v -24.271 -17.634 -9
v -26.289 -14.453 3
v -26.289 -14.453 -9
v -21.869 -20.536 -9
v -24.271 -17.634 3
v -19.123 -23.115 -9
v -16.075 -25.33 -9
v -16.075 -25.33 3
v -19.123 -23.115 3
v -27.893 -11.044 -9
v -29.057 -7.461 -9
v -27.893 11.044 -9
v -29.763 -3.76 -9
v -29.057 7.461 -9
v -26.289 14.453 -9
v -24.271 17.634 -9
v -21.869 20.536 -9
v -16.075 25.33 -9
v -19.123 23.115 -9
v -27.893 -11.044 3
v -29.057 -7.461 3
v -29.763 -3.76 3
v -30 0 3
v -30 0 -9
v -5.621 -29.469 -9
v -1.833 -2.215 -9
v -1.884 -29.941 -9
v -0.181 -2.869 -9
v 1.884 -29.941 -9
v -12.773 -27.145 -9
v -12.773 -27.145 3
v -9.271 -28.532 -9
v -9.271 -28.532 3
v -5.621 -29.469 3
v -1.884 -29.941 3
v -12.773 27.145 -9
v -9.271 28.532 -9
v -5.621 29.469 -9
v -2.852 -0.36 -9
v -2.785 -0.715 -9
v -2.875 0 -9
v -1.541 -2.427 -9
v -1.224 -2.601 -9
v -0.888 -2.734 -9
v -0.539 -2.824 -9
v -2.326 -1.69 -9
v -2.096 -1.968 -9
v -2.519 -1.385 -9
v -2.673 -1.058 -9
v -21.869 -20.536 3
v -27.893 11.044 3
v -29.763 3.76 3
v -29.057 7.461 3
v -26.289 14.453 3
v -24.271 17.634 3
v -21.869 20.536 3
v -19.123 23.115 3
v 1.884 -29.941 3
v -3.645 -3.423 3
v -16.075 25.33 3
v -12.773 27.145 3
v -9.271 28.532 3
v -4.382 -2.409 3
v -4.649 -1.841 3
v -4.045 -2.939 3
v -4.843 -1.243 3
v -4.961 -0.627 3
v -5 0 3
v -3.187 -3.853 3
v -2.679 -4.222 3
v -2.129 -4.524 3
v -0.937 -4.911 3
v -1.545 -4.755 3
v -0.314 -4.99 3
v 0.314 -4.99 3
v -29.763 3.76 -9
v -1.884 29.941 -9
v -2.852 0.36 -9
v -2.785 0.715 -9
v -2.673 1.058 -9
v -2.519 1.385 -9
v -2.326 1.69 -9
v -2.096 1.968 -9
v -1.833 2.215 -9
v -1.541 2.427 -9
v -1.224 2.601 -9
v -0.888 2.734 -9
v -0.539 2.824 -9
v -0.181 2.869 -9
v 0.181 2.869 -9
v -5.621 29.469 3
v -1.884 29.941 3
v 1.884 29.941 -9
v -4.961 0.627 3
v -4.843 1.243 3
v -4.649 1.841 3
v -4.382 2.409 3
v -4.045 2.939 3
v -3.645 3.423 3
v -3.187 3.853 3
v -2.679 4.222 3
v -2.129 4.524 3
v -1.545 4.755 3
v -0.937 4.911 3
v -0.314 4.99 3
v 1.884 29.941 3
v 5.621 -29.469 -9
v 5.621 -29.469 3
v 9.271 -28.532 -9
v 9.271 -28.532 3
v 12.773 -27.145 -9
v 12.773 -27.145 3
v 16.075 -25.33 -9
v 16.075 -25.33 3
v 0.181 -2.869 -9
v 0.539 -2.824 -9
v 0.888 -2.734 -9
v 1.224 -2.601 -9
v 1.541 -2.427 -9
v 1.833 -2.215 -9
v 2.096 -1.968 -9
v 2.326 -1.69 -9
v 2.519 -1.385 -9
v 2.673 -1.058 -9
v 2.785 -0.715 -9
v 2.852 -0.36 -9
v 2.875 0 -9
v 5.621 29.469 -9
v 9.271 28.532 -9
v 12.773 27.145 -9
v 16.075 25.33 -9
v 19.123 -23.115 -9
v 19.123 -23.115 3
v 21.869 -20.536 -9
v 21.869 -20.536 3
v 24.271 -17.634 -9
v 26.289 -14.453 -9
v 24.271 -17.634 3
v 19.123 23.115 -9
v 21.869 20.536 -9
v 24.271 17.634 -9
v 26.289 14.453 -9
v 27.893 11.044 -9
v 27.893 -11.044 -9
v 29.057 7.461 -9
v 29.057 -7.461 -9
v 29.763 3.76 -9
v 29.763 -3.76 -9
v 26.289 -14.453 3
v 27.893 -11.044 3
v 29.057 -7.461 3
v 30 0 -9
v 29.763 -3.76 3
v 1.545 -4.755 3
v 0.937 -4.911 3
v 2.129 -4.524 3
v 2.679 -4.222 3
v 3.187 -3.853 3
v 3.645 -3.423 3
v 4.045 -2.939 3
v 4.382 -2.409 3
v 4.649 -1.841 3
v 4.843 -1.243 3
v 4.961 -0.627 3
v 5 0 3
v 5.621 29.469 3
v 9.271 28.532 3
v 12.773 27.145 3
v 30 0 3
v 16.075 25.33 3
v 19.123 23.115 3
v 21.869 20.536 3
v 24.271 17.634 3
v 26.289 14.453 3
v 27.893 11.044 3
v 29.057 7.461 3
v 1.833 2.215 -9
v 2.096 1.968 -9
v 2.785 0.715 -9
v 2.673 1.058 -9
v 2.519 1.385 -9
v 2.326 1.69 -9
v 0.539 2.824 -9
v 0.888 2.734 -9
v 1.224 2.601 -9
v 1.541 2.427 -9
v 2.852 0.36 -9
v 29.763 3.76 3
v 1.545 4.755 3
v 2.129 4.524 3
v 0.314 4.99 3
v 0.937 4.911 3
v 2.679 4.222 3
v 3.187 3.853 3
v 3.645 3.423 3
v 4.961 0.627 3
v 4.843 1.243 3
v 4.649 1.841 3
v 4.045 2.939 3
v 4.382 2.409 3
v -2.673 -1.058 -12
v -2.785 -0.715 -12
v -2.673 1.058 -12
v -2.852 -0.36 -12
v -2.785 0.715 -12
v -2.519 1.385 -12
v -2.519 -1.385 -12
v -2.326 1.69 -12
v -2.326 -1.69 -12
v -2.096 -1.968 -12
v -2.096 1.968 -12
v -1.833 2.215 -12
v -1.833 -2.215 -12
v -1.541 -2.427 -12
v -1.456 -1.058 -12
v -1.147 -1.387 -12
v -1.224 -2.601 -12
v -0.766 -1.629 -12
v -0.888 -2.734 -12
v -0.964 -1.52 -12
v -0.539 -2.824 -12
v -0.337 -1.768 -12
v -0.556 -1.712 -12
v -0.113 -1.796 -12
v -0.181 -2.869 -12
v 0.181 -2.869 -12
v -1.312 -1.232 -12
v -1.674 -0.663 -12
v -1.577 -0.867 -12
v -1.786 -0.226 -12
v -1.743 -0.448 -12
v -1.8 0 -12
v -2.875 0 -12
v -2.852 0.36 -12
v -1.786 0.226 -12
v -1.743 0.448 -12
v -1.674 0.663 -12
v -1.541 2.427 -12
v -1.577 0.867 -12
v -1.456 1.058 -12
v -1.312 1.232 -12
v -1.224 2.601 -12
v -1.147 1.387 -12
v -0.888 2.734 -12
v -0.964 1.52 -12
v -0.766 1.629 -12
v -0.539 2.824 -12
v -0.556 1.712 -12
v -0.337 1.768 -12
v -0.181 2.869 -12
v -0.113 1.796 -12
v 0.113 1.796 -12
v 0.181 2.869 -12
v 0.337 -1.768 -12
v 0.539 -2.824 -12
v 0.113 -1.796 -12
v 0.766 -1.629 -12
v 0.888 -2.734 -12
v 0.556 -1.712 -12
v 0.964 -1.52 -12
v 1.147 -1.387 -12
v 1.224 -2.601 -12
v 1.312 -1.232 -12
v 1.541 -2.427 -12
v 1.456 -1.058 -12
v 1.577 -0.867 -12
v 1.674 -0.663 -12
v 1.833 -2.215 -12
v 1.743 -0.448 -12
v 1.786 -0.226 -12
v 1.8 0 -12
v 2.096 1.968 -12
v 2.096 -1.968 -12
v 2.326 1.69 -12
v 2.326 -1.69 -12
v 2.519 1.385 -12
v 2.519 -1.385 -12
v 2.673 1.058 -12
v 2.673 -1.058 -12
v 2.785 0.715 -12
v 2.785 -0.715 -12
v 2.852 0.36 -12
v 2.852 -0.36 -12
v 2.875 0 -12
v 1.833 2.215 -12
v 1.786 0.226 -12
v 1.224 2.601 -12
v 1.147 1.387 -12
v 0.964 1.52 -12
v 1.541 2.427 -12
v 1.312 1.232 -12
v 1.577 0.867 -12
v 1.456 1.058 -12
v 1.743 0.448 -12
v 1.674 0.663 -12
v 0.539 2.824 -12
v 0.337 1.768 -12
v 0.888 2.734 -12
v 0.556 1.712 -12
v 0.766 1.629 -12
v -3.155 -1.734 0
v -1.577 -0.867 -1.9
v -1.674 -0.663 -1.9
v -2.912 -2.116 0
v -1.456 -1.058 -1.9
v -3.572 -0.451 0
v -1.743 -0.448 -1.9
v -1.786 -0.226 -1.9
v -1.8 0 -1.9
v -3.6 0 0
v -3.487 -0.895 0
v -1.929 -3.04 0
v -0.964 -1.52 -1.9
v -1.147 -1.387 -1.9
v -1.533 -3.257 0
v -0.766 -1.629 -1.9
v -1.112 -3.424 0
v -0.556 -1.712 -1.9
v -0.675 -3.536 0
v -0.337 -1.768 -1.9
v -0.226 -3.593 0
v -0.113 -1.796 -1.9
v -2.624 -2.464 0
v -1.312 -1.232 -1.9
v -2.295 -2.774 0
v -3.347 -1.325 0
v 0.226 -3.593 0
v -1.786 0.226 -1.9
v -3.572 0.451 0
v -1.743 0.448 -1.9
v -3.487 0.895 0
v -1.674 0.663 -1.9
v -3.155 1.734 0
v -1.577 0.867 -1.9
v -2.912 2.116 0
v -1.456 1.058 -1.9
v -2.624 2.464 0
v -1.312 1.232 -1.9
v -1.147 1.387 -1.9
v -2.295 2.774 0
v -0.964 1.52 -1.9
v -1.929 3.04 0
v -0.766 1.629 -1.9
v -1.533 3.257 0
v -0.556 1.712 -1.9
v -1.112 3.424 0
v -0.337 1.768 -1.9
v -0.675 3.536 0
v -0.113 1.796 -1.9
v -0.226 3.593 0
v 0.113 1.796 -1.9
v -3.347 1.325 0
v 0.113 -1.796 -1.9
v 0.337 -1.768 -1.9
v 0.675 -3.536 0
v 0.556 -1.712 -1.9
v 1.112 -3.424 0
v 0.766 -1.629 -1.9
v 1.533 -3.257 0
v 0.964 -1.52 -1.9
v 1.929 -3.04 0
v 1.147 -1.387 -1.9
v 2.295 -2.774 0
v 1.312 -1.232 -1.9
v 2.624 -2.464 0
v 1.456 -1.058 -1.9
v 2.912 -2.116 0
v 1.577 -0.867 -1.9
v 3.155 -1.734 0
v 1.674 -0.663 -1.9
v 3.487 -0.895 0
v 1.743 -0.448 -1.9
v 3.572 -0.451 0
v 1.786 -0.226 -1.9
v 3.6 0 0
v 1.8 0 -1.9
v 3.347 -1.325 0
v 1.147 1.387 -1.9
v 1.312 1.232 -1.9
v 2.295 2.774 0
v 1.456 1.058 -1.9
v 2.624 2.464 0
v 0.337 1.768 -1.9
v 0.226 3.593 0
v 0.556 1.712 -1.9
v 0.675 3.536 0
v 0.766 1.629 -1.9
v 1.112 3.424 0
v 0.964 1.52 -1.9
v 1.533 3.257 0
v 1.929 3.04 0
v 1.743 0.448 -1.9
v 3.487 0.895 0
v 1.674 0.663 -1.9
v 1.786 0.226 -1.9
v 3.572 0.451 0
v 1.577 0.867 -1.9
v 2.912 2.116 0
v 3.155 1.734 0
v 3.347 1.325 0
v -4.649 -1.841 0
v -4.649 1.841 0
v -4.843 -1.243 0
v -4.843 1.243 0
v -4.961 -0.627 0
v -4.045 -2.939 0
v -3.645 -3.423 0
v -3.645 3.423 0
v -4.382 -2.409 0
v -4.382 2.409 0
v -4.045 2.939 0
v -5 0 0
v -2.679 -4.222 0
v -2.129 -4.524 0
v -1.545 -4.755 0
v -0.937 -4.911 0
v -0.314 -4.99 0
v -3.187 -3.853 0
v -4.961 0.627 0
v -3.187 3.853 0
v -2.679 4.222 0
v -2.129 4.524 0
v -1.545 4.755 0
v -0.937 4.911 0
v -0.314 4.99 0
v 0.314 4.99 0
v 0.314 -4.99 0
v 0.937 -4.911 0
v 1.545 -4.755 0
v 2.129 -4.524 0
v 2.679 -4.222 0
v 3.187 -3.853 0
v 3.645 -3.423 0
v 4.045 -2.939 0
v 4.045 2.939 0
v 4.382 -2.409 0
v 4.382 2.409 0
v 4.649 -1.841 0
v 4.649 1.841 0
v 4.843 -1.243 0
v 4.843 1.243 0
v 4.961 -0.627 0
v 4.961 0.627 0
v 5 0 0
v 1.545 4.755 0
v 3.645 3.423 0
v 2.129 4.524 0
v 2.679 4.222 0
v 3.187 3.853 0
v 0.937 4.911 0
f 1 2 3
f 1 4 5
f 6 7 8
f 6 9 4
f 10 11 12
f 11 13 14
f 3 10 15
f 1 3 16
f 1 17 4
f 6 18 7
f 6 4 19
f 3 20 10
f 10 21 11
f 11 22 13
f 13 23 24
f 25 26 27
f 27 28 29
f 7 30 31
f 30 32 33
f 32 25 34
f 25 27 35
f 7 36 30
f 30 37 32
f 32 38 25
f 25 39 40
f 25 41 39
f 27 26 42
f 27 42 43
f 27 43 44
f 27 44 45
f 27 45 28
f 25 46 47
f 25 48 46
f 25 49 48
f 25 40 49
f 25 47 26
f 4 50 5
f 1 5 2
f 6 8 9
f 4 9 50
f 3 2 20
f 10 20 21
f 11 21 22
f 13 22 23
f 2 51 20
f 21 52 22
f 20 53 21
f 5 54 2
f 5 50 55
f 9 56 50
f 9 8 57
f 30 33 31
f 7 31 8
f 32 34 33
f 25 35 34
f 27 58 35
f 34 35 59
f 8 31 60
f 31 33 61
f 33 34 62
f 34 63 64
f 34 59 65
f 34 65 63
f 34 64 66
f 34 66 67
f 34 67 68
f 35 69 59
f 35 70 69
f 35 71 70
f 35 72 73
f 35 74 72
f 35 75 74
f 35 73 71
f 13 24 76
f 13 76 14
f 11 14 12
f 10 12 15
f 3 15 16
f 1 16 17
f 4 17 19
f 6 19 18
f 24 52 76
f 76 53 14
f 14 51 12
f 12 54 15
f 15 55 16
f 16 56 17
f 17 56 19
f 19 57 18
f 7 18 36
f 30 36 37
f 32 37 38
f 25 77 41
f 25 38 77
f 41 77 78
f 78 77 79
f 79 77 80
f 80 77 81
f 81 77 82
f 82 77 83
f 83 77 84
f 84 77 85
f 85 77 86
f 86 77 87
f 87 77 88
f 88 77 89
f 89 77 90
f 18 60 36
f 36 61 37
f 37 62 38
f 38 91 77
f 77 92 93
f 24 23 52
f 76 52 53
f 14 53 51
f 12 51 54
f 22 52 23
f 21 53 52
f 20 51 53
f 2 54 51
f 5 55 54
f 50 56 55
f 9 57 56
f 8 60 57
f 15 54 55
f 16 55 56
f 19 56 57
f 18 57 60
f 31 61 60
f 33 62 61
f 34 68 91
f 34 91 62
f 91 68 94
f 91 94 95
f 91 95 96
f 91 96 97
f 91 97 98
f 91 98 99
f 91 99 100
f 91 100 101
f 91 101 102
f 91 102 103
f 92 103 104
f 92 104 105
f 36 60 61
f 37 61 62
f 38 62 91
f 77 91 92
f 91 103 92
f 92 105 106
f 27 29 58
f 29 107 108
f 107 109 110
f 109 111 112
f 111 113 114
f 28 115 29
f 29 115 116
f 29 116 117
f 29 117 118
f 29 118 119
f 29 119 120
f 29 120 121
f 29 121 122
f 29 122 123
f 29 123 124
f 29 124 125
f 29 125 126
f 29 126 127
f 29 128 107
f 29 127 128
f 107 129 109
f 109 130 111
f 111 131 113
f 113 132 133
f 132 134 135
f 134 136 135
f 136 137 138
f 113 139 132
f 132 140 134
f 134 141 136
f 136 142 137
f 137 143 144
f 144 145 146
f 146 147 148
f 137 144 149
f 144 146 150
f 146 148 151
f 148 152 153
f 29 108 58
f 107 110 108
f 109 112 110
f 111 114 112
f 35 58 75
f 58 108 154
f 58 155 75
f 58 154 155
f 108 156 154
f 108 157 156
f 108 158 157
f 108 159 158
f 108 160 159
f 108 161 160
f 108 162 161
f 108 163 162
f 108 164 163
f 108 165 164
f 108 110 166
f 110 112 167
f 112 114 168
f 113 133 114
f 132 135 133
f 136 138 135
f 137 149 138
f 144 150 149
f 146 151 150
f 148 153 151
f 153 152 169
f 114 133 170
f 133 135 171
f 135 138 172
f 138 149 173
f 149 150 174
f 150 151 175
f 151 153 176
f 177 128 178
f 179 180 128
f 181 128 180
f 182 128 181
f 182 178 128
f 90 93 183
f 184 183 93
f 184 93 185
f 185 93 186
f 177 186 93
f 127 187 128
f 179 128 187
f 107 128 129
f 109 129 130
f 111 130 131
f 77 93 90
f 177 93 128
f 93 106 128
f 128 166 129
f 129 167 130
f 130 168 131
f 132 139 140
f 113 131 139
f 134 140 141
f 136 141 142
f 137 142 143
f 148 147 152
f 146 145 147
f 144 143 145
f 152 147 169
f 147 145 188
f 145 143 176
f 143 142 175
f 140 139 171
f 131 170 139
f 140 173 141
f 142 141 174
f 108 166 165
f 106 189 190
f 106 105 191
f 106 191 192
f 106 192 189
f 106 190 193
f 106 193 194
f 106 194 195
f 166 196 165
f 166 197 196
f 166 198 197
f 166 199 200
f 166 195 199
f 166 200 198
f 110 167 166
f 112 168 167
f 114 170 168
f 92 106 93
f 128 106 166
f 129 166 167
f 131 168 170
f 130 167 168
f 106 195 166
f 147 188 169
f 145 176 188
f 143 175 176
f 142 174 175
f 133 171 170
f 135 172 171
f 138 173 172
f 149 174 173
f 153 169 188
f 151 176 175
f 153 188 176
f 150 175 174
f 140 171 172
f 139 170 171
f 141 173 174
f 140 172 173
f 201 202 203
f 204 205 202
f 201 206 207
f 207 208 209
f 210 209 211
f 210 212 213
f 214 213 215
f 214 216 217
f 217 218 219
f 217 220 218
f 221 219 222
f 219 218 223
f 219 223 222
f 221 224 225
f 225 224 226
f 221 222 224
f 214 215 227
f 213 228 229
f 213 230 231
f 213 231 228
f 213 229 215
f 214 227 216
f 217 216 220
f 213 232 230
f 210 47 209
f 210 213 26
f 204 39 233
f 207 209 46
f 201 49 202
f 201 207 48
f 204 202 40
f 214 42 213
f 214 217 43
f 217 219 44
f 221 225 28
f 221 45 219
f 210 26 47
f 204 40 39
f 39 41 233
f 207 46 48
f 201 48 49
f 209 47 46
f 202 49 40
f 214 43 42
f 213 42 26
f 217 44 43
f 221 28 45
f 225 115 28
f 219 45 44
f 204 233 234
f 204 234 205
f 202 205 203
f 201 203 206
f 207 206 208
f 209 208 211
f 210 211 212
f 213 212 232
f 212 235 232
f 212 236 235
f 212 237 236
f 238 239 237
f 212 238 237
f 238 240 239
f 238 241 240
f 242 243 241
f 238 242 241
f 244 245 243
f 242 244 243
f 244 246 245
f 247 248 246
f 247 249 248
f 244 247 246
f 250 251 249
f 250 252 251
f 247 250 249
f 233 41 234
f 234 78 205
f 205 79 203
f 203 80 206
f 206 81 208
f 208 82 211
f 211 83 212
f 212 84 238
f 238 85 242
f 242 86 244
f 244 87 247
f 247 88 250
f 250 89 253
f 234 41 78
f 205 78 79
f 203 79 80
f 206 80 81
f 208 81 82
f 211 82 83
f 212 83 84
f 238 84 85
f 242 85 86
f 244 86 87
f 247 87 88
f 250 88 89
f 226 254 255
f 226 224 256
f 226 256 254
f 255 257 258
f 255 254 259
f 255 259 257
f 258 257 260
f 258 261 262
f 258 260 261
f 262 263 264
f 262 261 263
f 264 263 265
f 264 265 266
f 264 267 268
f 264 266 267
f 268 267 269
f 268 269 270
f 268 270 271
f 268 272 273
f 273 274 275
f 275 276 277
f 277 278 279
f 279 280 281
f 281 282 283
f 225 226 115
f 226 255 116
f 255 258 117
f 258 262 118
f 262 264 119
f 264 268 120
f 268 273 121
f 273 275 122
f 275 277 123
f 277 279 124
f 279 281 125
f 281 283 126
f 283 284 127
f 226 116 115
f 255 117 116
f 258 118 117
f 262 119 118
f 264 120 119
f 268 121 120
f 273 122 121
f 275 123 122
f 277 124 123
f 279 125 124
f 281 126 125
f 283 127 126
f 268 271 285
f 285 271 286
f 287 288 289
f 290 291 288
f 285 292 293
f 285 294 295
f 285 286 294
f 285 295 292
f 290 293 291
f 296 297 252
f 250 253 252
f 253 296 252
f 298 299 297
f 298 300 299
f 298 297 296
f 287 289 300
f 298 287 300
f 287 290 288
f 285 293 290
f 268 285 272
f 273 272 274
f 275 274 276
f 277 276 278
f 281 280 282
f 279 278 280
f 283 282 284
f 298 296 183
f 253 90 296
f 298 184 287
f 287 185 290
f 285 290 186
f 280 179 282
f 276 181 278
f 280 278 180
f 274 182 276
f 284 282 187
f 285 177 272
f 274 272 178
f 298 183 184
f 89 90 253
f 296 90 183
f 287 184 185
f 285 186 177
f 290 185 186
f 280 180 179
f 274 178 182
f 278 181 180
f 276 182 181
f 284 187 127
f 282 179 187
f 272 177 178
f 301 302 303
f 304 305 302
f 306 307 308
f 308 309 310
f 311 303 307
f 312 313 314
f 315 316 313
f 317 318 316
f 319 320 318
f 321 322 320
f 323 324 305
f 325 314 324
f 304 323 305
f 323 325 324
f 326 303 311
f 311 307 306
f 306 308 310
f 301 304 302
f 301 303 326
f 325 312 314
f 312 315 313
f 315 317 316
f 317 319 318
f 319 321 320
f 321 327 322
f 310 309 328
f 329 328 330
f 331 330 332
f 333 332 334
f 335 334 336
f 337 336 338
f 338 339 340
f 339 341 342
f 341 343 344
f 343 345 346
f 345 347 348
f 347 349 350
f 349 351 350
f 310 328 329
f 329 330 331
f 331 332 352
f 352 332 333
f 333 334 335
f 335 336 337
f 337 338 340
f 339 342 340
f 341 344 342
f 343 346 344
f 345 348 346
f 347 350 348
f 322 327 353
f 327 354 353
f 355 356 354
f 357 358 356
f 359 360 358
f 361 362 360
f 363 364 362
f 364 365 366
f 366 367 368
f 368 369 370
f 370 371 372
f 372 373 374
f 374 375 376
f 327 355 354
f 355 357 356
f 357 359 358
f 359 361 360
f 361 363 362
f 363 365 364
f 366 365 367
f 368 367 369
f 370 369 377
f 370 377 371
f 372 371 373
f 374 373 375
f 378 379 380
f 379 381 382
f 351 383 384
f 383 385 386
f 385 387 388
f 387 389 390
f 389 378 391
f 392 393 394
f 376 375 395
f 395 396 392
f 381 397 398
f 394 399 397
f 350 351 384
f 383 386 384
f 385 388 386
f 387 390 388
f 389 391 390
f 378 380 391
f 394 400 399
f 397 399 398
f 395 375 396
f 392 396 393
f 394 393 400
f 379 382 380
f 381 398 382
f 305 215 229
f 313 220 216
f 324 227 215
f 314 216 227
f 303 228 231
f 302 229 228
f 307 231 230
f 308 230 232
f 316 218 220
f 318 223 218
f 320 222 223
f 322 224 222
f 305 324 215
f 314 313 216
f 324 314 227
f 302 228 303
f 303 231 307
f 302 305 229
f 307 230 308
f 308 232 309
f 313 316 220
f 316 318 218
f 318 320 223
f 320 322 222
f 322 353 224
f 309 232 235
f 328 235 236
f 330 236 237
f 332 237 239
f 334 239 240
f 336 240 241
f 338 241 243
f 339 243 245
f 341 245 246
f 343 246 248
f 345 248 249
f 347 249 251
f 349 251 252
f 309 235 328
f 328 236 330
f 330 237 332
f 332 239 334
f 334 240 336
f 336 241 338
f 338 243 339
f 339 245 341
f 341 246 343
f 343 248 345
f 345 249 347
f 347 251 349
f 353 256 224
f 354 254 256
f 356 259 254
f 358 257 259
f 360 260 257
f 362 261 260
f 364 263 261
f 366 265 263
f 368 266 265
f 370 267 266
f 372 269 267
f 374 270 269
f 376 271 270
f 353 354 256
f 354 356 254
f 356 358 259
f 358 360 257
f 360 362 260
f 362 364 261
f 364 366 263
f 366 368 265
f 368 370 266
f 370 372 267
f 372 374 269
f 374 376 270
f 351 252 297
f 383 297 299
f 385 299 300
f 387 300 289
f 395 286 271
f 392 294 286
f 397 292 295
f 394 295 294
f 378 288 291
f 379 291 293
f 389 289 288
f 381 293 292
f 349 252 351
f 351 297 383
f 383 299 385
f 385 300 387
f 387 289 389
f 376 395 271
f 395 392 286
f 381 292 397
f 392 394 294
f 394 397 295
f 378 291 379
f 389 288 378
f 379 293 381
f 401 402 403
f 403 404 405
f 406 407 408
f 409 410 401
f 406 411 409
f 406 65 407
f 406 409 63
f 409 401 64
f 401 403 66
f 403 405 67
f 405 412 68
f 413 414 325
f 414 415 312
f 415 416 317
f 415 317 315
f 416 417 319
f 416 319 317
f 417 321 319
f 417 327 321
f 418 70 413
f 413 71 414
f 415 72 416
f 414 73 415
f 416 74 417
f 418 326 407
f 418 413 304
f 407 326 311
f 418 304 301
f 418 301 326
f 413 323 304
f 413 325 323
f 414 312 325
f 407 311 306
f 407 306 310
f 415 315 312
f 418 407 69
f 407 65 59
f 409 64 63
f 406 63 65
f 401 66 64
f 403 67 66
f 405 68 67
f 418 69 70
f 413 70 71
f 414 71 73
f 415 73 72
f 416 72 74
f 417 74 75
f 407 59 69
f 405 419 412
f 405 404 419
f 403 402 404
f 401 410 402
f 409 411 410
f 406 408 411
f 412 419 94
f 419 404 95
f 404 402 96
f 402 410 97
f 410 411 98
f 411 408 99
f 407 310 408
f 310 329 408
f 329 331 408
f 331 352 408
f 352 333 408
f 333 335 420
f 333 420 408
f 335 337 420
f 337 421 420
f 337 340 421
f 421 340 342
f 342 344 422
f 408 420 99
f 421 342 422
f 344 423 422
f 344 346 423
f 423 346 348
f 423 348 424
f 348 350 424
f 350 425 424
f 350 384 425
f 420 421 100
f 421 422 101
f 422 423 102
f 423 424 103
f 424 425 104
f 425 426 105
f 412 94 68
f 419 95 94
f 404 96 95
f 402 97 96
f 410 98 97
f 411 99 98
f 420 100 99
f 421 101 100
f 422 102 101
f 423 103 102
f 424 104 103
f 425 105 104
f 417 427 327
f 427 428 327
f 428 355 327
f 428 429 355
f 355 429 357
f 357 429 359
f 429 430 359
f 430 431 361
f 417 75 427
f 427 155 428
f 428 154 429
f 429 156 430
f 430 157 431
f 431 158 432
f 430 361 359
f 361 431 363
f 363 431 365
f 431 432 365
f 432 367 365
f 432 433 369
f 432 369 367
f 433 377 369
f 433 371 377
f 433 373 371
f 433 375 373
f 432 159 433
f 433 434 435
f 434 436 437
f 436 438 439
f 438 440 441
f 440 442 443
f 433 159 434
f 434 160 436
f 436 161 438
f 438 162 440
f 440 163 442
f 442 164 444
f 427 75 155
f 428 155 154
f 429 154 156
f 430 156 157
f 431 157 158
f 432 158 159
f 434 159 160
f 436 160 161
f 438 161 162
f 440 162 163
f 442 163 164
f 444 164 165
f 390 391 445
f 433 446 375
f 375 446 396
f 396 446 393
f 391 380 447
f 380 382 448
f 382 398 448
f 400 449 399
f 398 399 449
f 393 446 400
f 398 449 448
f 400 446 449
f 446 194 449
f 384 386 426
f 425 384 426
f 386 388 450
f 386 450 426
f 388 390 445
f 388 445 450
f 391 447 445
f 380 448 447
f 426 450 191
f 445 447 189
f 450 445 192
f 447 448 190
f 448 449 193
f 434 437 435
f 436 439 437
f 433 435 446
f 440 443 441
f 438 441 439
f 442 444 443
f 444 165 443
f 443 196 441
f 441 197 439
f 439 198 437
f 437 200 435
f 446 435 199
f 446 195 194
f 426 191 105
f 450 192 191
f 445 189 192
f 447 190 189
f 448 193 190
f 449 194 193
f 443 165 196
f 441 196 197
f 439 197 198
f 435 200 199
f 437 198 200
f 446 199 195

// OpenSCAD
$fn = 50;


difference() {
	union() {
		translate(v = [0, 0, -9.0000000000]) {
			cylinder(h = 12, r = 30.0000000000);
		}
		#translate(v = [0, 0, -12.0000000000]) {
			cylinder(h = 12, r = 2.8750000000);
		}
	}
	union() {
		translate(v = [0, 0, 0]) {
			rotate(a = [0, 0, 0]) {
				difference() {
					union() {
						translate(v = [0, 0, -12.0000000000]) {
							cylinder(h = 12, r = 1.5000000000);
						}
						translate(v = [0, 0, -1.9000000000]) {
							cylinder(h = 1.9000000000, r1 = 1.8000000000, r2 = 3.6000000000);
						}
						translate(v = [0, 0, -12.0000000000]) {
							cylinder(h = 12, r = 1.8000000000);
						}
						translate(v = [0, 0, -12.0000000000]) {
							cylinder(h = 12, r = 1.5000000000);
						}
					}
					union();
				}
			}
		}
		#cylinder(h = 3, r = 5.0000000000);
	}
}
